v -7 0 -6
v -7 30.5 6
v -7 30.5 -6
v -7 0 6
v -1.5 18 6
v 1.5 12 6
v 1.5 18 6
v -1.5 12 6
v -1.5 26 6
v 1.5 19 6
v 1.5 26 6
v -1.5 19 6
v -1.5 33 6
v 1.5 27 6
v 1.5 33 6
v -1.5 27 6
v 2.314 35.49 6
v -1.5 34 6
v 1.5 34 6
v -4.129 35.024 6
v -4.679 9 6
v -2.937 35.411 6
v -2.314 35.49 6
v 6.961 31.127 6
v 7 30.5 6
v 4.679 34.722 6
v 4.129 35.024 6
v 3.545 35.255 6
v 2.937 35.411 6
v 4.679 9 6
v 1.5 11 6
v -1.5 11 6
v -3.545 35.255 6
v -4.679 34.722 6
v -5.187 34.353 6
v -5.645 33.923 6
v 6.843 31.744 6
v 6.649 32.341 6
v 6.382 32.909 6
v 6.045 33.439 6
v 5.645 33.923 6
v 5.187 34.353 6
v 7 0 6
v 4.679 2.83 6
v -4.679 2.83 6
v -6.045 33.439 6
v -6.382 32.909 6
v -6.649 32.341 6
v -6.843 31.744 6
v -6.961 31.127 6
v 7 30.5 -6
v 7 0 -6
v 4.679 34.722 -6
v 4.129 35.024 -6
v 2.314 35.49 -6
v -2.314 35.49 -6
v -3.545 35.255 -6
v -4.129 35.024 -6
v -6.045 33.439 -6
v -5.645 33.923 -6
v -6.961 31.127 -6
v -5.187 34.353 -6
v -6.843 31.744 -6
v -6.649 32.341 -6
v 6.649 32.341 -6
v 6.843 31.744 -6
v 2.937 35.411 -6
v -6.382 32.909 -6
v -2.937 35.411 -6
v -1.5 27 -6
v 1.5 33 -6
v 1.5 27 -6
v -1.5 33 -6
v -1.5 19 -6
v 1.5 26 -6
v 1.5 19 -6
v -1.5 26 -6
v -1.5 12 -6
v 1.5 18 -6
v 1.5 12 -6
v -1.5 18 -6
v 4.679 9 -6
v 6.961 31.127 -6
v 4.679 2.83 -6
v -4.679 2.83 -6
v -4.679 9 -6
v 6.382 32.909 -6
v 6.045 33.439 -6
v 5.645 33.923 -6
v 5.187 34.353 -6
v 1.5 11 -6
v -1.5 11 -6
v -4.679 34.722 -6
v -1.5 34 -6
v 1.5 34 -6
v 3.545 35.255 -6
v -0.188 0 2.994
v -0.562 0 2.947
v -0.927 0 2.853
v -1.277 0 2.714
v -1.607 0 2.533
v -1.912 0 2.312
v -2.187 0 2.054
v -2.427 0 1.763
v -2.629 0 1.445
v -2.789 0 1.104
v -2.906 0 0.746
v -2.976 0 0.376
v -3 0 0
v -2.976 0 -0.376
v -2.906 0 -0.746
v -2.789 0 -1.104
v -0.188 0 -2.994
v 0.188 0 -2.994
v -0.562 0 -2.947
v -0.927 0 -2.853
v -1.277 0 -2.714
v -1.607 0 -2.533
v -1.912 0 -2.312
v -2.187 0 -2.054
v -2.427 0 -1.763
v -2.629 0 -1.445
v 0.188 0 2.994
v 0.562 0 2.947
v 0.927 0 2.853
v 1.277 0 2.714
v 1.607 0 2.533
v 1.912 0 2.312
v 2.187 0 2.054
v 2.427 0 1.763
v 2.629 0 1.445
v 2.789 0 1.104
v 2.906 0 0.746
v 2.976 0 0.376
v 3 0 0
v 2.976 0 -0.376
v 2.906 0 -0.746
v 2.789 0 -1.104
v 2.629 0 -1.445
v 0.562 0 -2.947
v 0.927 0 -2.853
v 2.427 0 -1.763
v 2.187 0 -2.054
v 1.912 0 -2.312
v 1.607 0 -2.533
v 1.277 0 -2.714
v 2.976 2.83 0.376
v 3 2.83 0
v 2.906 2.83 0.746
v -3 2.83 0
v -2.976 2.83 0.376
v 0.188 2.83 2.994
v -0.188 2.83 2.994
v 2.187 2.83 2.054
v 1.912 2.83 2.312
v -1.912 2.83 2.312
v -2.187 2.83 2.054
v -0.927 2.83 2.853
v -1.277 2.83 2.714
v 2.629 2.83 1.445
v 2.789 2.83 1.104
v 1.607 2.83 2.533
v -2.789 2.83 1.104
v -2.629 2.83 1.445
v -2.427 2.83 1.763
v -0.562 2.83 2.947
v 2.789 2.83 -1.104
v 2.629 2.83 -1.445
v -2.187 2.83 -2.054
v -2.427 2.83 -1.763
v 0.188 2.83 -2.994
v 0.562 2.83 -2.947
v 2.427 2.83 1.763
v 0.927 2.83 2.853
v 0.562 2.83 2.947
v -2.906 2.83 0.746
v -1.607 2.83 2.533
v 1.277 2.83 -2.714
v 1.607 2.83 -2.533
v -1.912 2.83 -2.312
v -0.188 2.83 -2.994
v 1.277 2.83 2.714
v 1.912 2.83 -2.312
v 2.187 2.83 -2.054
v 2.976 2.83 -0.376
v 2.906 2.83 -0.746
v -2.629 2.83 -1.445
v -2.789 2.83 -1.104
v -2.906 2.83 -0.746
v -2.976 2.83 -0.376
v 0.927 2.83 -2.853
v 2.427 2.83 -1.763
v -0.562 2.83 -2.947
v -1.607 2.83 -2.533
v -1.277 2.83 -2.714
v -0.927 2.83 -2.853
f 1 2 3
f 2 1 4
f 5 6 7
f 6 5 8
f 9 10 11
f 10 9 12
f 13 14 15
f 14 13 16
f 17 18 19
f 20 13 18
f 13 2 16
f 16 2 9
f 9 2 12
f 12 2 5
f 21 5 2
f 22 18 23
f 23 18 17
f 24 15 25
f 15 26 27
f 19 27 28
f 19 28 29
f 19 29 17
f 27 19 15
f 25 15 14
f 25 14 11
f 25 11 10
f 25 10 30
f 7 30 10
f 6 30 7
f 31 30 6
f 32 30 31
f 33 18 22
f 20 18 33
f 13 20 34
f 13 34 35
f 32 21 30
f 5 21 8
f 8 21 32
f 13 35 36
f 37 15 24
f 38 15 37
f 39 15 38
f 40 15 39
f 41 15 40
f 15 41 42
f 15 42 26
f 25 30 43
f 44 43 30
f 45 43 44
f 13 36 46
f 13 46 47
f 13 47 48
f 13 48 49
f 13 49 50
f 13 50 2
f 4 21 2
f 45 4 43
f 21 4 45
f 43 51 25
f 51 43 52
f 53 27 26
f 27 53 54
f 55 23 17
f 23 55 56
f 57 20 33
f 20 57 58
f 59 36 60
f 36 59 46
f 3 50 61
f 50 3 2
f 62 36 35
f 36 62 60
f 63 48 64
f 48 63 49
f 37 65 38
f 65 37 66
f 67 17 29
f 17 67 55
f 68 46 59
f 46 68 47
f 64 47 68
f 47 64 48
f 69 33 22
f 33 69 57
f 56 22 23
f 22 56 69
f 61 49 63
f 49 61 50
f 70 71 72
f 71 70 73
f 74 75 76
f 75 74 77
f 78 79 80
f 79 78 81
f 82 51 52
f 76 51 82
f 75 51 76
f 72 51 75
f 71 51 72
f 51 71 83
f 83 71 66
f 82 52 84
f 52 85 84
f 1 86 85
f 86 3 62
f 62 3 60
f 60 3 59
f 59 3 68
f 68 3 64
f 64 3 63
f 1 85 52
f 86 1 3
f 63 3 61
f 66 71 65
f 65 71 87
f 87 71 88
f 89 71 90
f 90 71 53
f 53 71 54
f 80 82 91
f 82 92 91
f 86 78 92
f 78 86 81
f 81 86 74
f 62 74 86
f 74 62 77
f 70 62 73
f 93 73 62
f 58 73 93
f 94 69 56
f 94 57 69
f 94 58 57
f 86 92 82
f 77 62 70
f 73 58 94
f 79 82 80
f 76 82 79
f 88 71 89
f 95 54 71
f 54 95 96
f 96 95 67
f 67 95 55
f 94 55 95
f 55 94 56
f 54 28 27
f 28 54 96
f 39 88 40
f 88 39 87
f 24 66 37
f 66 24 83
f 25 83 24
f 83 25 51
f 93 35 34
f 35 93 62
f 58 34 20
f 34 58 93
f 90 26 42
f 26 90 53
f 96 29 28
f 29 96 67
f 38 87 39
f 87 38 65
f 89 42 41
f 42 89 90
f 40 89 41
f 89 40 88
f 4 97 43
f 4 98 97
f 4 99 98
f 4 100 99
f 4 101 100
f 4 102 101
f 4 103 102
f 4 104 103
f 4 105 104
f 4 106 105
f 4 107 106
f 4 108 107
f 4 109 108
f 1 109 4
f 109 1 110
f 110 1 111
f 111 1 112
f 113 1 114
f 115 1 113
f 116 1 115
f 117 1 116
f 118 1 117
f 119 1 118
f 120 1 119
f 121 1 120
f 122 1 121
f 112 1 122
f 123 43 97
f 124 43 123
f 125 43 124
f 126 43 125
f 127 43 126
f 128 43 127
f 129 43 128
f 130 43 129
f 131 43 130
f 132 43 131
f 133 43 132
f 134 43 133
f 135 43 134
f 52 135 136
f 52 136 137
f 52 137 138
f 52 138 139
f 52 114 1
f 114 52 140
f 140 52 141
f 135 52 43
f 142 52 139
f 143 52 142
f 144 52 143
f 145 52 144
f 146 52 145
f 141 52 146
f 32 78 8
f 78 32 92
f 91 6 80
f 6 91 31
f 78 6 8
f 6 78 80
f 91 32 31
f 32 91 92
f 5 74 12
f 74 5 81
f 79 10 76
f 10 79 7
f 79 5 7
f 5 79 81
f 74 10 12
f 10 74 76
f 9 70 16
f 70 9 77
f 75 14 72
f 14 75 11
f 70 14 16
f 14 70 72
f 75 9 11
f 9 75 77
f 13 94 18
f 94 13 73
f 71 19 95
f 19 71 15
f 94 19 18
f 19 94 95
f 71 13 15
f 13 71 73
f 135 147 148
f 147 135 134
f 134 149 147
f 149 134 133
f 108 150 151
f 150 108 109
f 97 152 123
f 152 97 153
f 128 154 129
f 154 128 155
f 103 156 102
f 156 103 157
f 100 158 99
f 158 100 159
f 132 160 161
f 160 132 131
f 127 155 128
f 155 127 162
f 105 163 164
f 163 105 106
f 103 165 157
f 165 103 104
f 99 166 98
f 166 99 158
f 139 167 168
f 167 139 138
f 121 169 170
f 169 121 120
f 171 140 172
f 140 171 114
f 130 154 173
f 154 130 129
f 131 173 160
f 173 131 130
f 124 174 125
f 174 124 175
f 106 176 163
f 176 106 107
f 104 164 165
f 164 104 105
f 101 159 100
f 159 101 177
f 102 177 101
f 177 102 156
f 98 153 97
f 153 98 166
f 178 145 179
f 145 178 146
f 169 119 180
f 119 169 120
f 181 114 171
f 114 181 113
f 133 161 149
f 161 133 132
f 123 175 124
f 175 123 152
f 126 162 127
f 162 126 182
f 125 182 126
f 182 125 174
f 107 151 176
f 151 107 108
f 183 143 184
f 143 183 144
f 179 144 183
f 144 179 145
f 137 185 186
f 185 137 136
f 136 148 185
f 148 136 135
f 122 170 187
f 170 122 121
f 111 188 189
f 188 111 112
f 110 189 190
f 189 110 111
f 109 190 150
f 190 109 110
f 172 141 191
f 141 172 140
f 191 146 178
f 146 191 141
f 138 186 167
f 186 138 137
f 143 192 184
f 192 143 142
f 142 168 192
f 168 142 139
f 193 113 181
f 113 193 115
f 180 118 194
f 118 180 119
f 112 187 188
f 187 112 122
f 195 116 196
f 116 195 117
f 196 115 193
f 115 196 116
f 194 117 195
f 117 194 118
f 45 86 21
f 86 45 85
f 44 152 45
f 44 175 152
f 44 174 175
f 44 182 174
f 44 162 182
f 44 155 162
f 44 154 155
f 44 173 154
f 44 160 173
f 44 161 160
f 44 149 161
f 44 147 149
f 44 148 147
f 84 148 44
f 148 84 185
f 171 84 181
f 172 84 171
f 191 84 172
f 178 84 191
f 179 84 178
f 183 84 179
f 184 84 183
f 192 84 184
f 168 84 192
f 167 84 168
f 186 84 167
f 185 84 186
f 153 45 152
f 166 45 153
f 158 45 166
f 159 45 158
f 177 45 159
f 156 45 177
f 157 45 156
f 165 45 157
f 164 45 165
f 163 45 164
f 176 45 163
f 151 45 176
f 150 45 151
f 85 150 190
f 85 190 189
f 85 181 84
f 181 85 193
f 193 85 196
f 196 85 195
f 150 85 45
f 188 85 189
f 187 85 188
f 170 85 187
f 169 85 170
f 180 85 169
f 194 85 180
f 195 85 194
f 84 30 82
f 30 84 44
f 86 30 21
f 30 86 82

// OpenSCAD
$fn = 50;


difference() {
	union() {
		translate(v = [0, 21.0000000000, -6.0000000000]) {
			rotate(a = [0, 0, 0]) {
				hull() {
					translate(v = [-2.0000000000, 9.5000000000, 0]) {
						rotate(a = [0, 0, 0]) {
							translate(v = [0, 0, 0]) {
								rotate(a = [0, 0, 0]) {
									cylinder(h = 12, r = 5);
								}
							}
						}
					}
					translate(v = [2.0000000000, 9.5000000000, 0]) {
						rotate(a = [0, 0, 0]) {
							translate(v = [0, 0, 0]) {
								rotate(a = [0, 0, 0]) {
									cylinder(h = 12, r = 5);
								}
							}
						}
					}
					translate(v = [-2.0000000000, -9.5000000000, 0]) {
						rotate(a = [0, 0, 0]) {
							translate(v = [0, 0, 0]) {
								rotate(a = [0, 0, 0]) {
									cylinder(h = 12, r = 5);
								}
							}
						}
					}
					translate(v = [2.0000000000, -9.5000000000, 0]) {
						rotate(a = [0, 0, 0]) {
							translate(v = [0, 0, 0]) {
								rotate(a = [0, 0, 0]) {
									cylinder(h = 12, r = 5);
								}
							}
						}
					}
				}
			}
		}
		translate(v = [-7.0000000000, 0, -6.0000000000]) {
			rotate(a = [0, 0, 0]) {
				cube(size = [14, 13.5000000000, 12]);
			}
		}
	}
	union() {
		translate(v = [-1.5000000000, 11.0000000000, -50]) {
			rotate(a = [0, 0, 0]) {
				cube(size = [3, 1, 100]);
			}
		}
		translate(v = [-1.5000000000, 18.0000000000, -50]) {
			rotate(a = [0, 0, 0]) {
				cube(size = [3, 1, 100]);
			}
		}
		translate(v = [-1.5000000000, 26.0000000000, -50]) {
			rotate(a = [0, 0, 0]) {
				cube(size = [3, 1, 100]);
			}
		}
		translate(v = [-1.5000000000, 33.0000000000, -50]) {
			rotate(a = [0, 0, 0]) {
				cube(size = [3, 1, 100]);
			}
		}
		translate(v = [0.0000000000, 8, 0]) {
			rotate(a = [90, 0, 0]) {
				cylinder(h = 8, r = 3.0000000000);
			}
		}
		translate(v = [-4.6793760832, 9, -25]) {
			rotate(a = [90, 0, 0]) {
				cube(size = [9.3587521664, 100, 6.1700000000]);
			}
		}
	}
}
